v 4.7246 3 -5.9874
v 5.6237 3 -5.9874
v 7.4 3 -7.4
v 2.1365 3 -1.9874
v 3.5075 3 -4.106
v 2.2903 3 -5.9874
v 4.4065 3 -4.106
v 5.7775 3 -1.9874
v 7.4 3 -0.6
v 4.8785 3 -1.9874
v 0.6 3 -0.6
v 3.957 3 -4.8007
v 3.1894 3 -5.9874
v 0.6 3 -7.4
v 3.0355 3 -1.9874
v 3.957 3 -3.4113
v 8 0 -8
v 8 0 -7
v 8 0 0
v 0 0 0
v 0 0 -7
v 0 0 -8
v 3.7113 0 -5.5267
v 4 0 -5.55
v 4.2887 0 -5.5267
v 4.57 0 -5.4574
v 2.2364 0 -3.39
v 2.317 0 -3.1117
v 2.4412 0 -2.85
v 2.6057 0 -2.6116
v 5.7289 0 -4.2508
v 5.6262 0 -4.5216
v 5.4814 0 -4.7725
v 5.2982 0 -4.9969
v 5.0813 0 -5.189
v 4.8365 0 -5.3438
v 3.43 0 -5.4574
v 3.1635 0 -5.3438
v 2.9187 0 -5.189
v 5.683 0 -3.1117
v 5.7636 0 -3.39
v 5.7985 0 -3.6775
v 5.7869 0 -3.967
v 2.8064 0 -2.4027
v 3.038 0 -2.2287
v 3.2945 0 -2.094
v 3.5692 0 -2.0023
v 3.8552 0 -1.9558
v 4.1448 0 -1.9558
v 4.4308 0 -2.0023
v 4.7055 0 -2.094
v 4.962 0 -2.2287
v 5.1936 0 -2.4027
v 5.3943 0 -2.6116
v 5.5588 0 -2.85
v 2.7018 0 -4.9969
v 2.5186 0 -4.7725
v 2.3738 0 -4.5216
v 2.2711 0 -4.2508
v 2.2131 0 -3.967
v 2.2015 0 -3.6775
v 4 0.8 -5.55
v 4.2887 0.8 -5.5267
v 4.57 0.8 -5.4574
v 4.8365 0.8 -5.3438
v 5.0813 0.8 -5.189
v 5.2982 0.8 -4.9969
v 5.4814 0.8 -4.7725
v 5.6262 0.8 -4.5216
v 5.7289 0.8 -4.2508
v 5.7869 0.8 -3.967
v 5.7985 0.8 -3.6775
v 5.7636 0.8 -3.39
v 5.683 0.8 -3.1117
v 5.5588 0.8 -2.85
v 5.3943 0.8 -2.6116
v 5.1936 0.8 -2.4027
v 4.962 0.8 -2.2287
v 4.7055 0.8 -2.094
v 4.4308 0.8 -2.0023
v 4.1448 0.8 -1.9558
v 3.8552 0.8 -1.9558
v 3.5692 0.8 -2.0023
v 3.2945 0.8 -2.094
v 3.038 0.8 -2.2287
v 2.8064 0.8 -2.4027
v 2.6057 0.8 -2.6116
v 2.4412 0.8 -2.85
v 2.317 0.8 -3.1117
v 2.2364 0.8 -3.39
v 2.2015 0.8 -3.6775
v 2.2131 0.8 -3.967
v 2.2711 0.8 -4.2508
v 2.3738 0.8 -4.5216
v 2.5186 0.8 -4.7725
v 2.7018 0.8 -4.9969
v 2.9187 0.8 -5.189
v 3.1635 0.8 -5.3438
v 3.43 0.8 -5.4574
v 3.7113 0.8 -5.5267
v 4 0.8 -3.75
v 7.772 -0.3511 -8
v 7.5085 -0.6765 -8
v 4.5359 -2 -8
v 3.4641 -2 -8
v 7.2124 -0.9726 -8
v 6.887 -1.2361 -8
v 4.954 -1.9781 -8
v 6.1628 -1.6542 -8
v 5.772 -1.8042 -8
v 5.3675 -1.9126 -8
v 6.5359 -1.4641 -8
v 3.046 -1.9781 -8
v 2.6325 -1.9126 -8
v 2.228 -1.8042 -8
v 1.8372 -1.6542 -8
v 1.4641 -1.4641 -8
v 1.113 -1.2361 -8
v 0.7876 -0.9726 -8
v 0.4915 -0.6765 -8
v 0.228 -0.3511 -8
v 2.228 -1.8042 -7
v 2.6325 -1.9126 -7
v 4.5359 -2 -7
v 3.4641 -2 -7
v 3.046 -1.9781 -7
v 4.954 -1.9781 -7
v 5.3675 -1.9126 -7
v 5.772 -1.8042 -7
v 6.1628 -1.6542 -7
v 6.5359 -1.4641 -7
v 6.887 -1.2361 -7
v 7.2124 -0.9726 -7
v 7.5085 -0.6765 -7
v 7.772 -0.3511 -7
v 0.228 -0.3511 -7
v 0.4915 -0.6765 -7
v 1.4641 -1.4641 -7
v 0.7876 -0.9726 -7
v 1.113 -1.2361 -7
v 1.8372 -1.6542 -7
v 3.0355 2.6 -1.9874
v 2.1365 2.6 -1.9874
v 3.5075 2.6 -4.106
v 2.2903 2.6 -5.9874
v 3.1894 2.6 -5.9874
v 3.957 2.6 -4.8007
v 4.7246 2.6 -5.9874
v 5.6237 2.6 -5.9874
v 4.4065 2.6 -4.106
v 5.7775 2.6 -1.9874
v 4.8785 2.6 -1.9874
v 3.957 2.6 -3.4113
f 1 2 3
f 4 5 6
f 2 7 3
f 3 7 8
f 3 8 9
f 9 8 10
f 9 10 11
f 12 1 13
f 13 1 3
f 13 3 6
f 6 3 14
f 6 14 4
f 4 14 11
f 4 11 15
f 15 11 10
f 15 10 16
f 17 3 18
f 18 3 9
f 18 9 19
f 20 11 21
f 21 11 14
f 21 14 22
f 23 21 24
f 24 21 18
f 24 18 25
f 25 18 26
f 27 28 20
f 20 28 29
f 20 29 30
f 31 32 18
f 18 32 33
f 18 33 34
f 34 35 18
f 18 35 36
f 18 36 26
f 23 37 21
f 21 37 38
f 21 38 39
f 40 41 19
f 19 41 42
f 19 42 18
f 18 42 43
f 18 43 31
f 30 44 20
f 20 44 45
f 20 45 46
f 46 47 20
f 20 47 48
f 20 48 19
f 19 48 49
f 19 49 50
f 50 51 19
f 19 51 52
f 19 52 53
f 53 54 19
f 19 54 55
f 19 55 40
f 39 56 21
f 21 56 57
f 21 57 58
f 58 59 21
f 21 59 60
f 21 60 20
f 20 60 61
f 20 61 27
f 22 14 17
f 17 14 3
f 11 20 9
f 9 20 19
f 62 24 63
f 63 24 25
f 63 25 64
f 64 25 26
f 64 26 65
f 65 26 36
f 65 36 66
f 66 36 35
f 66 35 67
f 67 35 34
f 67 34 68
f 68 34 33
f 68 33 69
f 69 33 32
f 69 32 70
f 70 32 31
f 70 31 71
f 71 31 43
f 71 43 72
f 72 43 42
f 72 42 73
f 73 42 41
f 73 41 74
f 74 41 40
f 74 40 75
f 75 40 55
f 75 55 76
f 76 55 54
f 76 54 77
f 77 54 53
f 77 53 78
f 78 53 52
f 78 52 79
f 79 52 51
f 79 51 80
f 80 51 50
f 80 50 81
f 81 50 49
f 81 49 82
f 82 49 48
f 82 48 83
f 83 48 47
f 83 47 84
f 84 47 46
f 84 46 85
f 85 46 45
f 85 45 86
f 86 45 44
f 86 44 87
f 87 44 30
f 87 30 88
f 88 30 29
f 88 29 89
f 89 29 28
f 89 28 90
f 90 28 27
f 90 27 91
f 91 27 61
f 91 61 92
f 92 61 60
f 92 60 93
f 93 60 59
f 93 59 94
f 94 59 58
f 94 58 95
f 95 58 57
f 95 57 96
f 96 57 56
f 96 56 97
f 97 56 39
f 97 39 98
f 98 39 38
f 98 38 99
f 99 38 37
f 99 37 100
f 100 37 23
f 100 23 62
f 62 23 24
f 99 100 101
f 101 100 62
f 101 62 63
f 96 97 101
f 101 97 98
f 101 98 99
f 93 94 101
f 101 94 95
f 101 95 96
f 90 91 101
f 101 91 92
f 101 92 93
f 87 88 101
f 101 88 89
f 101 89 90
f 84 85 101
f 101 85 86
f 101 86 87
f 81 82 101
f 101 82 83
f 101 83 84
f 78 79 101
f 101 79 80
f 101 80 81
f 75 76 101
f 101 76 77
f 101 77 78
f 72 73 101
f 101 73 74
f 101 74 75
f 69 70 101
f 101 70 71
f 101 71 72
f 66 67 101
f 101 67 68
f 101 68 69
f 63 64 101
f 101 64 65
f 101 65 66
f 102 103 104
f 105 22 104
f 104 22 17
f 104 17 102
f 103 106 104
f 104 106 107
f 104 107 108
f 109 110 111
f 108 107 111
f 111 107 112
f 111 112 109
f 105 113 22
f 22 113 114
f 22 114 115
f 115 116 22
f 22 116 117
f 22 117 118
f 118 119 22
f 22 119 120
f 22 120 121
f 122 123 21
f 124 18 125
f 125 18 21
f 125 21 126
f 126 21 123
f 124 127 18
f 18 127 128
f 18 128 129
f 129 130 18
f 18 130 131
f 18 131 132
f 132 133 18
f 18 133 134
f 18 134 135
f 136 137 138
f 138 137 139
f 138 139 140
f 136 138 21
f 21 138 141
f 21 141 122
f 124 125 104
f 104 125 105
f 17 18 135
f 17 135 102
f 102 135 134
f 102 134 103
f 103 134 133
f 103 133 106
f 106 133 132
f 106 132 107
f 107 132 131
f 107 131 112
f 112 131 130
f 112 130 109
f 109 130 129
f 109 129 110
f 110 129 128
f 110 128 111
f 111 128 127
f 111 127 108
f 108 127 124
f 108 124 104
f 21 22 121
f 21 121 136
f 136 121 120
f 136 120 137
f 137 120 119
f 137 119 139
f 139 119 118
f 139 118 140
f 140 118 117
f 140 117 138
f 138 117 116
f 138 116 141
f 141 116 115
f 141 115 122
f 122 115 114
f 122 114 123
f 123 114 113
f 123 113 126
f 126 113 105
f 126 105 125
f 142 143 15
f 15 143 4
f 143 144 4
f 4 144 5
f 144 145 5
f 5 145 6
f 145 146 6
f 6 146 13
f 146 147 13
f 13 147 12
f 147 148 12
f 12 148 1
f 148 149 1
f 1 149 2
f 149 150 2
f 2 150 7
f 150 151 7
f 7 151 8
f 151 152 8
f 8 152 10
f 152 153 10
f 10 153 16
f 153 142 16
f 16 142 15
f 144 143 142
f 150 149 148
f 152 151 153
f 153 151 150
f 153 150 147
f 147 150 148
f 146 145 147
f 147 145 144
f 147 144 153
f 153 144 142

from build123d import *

# Parameters (mm, degrees)
SKETCH1_W               = 8
SKETCH1_H               = 8
BOSS_EXTRUDE1_DEPTH     = 3
CUT_EXTRUDE1_DEPTH      = 12.704699911
CUT_EXTRUDE1_DEPTH_BACK = 12.704699911
CUT_EXTRUDE2_DEPTH      = 11
SKETCH4_R               = 1.8
CUT_EXTRUDE3_DEPTH      = 0.8
SKETCH5_W               = 8
SKETCH5_H               = 1
BOSS_EXTRUDE2_DEPTH     = 2
FILLET1_R               = 4
CUT_EXTRUDE4_DEPTH      = 0.4


with BuildPart() as part:
    # Sketch1 → Boss-Extrude1 (new body)
    with BuildSketch(Plane(origin=(0, 0, 0), x_dir=(1, 0, 0), z_dir=(0, 1, 0))):
        with Locations((4, 4)):
            Rectangle(SKETCH1_W, SKETCH1_H)
    extrude(amount=BOSS_EXTRUDE1_DEPTH)

    # Sketch2 → Cut-Extrude1 (cut, two sides: drawn at the far end of the back side and taken through both)
    with BuildSketch(Plane.XY.offset(-CUT_EXTRUDE1_DEPTH_BACK)):
        Polygon((0, 0), (0.6, 3), (0, 3), align=None)
        Polygon((8, 0), (7.4, 3), (8, 3), align=None)
    extrude(amount=CUT_EXTRUDE1_DEPTH + CUT_EXTRUDE1_DEPTH_BACK, mode=Mode.SUBTRACT)

    # Sketch3 → Cut-Extrude2 (cut)
    with BuildSketch(Plane(origin=(0, 0, 0), x_dir=(0, 0, -1), z_dir=(1, 0, 0))):
        Polygon((0, 0), (0.6, 3), (0, 3), align=None)
        Polygon((8, 3), (7.4, 3), (8, 0), align=None)
    extrude(amount=CUT_EXTRUDE2_DEPTH, mode=Mode.SUBTRACT)

    # Sketch4 → Cut-Extrude3 (cut)
    with BuildSketch(Plane.XZ):
        with Locations(Location((4, -3.75, 0), (0, 0, 270))):
            Circle(SKETCH4_R)
    extrude(amount=-CUT_EXTRUDE3_DEPTH, mode=Mode.SUBTRACT)

    # Sketch5 → Boss-Extrude2 (add)
    with BuildSketch(Plane.XZ):
        with Locations((4, -7.5)):
            Rectangle(SKETCH5_W, SKETCH5_H)
    extrude(amount=BOSS_EXTRUDE2_DEPTH)

    # Fillet1
    # the kernel refuses this fillet: 4 mm, written as the material it takes off along each edge
    with BuildSketch(Plane(origin=(8, -2, -16.660254038), x_dir=(0, 1, 0), z_dir=(0, 0, 1)), Plane(origin=(0, -2, 1.660254038), x_dir=(0, 1, 0), z_dir=(0, 0, -1))) as fillet1_piece_1:
        with BuildLine():
            CenterArc((4, 3.464101615), FILLET1_R, 180, 60)
            Line((0, 3.464101615), (-0.08, 3.464101615))
            Line((-0.08, 3.464101615), (-0.08, 0))
            Line((-0.08, 0), (0, -0.08))
            ThreePointArc((0, -0.08), (1, -0.08), (1.96, -0.069282032))
            Line((1.96, -0.069282032), (2, 0))
        make_face()
    extrude(amount=18.320508076, mode=Mode.SUBTRACT)

    # Sketch6 → Cut-Extrude4 (cut)
    with BuildSketch(Plane(origin=(0, 3, 0), x_dir=(1, 0, 0), z_dir=(0, 1, 0))):
        Polygon((2.136477101, 1.987434605), (3.507470691, 4.106024349), (2.290323255, 5.987434605), (3.189361717, 5.987434605), (3.956989922, 4.800735887), (4.724618127, 5.987434605), (5.623656589, 5.987434605), (4.406509153, 4.106024349), (5.777502742, 1.987434605), (4.878464281, 1.987434605), (3.956989922, 3.41131281), (3.035515563, 1.987434605), align=None)
    extrude(amount=-CUT_EXTRUDE4_DEPTH, mode=Mode.SUBTRACT)


solid = part.part
